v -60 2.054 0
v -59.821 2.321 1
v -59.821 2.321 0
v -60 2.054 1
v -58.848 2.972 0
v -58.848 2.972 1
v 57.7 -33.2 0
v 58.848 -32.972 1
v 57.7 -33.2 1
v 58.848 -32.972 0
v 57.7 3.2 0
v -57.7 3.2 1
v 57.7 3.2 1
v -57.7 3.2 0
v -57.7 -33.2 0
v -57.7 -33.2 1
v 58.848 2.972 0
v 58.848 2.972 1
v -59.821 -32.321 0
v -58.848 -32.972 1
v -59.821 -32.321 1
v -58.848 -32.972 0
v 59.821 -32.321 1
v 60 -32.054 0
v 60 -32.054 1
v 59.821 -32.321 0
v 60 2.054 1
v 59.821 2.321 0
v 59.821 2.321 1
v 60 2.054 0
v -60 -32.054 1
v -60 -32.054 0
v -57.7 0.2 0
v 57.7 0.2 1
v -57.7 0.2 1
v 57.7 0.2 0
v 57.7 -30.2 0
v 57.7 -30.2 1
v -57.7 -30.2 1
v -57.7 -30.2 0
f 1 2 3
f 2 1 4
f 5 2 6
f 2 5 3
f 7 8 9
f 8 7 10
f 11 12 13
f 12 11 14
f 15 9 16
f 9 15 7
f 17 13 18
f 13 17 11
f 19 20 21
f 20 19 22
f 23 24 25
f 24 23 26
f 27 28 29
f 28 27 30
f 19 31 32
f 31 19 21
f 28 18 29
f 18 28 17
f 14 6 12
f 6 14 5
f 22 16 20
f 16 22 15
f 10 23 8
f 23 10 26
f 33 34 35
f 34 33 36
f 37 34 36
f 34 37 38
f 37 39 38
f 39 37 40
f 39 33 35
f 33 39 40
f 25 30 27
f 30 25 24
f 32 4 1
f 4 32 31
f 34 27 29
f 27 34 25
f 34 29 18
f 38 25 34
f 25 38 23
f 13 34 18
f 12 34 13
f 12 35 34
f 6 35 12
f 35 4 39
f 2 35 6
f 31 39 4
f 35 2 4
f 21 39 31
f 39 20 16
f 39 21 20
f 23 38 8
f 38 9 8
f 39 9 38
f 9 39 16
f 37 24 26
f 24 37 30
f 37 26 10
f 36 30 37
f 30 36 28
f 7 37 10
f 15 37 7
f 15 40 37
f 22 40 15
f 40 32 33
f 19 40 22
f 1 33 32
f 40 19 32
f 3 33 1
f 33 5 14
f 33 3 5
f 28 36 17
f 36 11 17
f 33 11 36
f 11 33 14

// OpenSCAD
// file: params.scad
depth=40;

xt60_loc = [ [-47,-depth, 15], [-27,-depth, 15], [-7,-depth, 15] ];
plug_loc = [5,-depth, 1.5];

margin = 0.2;

plug_margin=0.2;

xt60_margin = 0.25;
xt60m_margin = 1;

xt60_thickness = 1.5;
plug_thickness = 2;

case_w_inner = 115+2*margin;
case_h_inner = 30+2*margin;
case_thickness = 3;
case_front_thickness = 1.5;
case_w = case_w_inner + 2*case_thickness;
case_d = depth + 40;
case_h = case_h_inner + 2*case_thickness;

case_dim = [case_w, case_d, case_h];
case_dim_inner = [case_w_inner, case_d, case_h_inner];
case_dim_inside = [(case_w_inner+case_w)/2, case_d, (case_h_inner+case_h)/2];

bump_corner=(case_thickness+margin)*2.5;

front = [0,-1, 0];
bottom_front = [0,-1,-1];

grid_rows = 3;
grid_cols = 11;
grid_pitch = 10;
grid_thickness = .8;
grid_depth=12;
grid_xoff =-2;

screw_thread=3;
screw_hole_r=(screw_thread*.9)/2;
screw_hole_border=2;

mw_lrs_gap_d = 18.5;
// file: xt.scad
e=.001;
$fn=16;

xt60_w=15.7;
xt60_h=8;
xt60f_d = 15.7;
xt60f_base_d = 8;
xt60_combined_d=24.1;
xt60_pitch=7;
xt60_chamfer=2.5;
xt60f_pin_d=5.7;
xt60m_pin_d=4.7;
xt60_pin_w=4.5;
xt60_hole_w=4.5;
xt60_corner=.5;

module xt_pins(width, height, pitch)
{
	for (p=[-pitch/2, pitch/2])
	translate([p,0,0])
	cylinder(h=height, r=width/2);
}

module xt_base(w, h, d, chamfer, corner, margin=0, e=0)
{
	w = w-2*corner;
	h = h-2*corner;
	r = corner+margin;
	translate([0,0,-e])
    linear_extrude(d+2*e)
	hull()
    for (p=[ [w/2,-h/2],
	         [-w/2+chamfer, -h/2],
	         [-w/2, -h/2+chamfer],
	         [-w/2, h/2-chamfer],
	         [-w/2+chamfer, h/2],
	         [w/2, h/2]
	])
	translate(p)
	circle(r);
}

module xt60_combined_shell_cutout(margin=0,f_margin=-1,m_margin=-1, e=0)
{
	b=1; 
	xt_base(xt60_w, xt60_h, xt60_combined_d, xt60_chamfer, xt60_corner, margin, e);
	if (f_margin > margin)
	hull()
	{
		xt_base(xt60_w, xt60_h, xt60f_base_d, xt60_chamfer, xt60_corner, f_margin, e);
		translate([0,0,xt60f_base_d])
		xt_base(xt60_w, xt60_h, f_margin-margin, xt60_chamfer, xt60_corner, margin, e);
	}
	if (m_margin > margin)
	hull()
	{
		translate([0,0,xt60f_base_d-(m_margin-margin)])
		xt_base(xt60_w, xt60_h, m_margin-margin, xt60_chamfer, xt60_corner, margin, e);
		translate([0,0,xt60f_base_d])
		xt_base(xt60_w, xt60_h, xt60_combined_d-xt60f_base_d, xt60_chamfer, xt60_corner, m_margin, e);
	}
}


module xt60_combined_cutout(margin=0,f_margin=-1,m_margin=-1, e=0)
{
	b=1; 
	xt60_combined_shell_cutout(margin,f_margin,m_margin, e);

	translate([0, 0, -xt60f_pin_d-margin])
	xt_pins(xt60_pin_w+margin*2, xt60f_pin_d+b+margin, xt60_pitch);

	translate([0, 0, xt60_combined_d-b])
	xt_pins(xt60_pin_w+margin*2, xt60m_pin_d+b+margin, xt60_pitch);
}

module xt60f_cutout(margin=0,f_margin=-1,m_margin=-1,e=0)
{
	translate([0,0,-xt60f_d])
	xt60_combined_cutout(margin,f_margin,m_margin,e);
}

module xt60f_shell_cutout(margin=0,f_margin=-1,m_margin=-1,e=0)
{
	translate([0,0,-xt60f_d])
	xt60_combined_shell_cutout(margin,f_margin,m_margin,e);
}

module xt60f()
{
	b=1;
	translate([0,0,-xt60f_d])
	{
		xt_base(xt60_w, xt60_h, xt60f_base_d, xt60_chamfer, xt60_corner, 0, e);

		translate([0,0,b])
		difference()
		{
			xt_base(xt60_w-2*xt60_corner, xt60_h-2*xt60_corner, xt60f_d-b, xt60_chamfer, xt60_corner, 0, e);
			xt_pins(xt60_hole_w, xt60f_d, xt60_pitch);

		}

		difference()
		{
			translate([0, 0, -xt60f_pin_d])
			xt_pins(xt60_pin_w, xt60f_pin_d+b, xt60_pitch);

			translate([0, 0, -xt60f_pin_d-b])
			xt_pins(xt60_pin_w*.8, xt60f_pin_d+b, xt60_pitch);
		}
	}
}

xt60f();
%xt60f_cutout(margin=.4,m_margin=1,e=e);
// file: power_shield.scad
use <utils.scad>
use <grid.scad>

use <mw_lrs.scad>
use <powerplug.scad>
use <xt.scad>

$fn=16;
e=.001;


margin=.15;
shield_thickness=1.;
shield_bottom=.6;

border_w=51;
border_h=31.2;
border_d=3.5;

w=47;
h=26.8;
d=22;
chamf=4;

corner=1;

module plug_keepout(margin=0, depth=39, e=0)
{
	$fn=16;

	d = .1+e;
	border_w = border_w-2*corner;
	border_h = border_h-2*corner;
	w = w-2*corner;
	h = h-2*corner;
	r = corner+margin;
	off = 16.5;

	color([.3,.3,.3])
	translate([corner,depth-.1,corner])
	rotate([90,0,0])
	{
		translate([(border_w-w)/2,0,-d])
		linear_extrude(d+e)
		hull()
		for (p=[ [off, 0],
		         [off, h],
		         [w-chamf, h],
		         [w, h-chamf],
		         [w, chamf],
		         [w- chamf, 0],
		])
		translate(p)
		circle(r);
	}
}

module plug_hull(margin, d, e=0)
{
	hull()
	{
		difference()
		{
		plug(margin=margin, extra_depth=5+shield_bottom);
		translate([-10,-10,-10])
		cube([100, 30, 100]);
		}
		plug_keepout(margin=margin, depth=d, e=0);
	}
	plug_keepout(margin=margin, depth=d, e=e);
	
}

inner_w=.8;

module power_shield()
{
color("red")
	union()
	{
	difference()
	{
		union()
		{
			plug_hull(margin=margin+shield_thickness, d=39);
		}
		union()
		{
		plug_hull(margin=margin, d=38, e=2);
		}
	}

	intersection()
	{
		plug_hull(margin=margin+shield_thickness/2, d=38.5, e=2);
		difference()
		{
			union()
			{
				translate([(border_w-w)/2+8.5-inner_w/2, 22, h/2-4-inner_w/2])
				cube([inner_w, 20, 20]);

				translate([(border_w-w)/2+8.5, 22, h/2-4-inner_w/2])
				cube([9., 17, inner_w]);

				translate([(border_w-w)/2+17.5-inner_w/2, 22, h/2-4-inner_w/2])
				cube([inner_w, 17, 10]);

				translate([(border_w-w)/2+15-inner_w/2, 38.4, h/2-4-inner_w/2])
				cube([2.5, shield_bottom, 10]);

				for (y=[0,h])
				for (x=[0,w-2])
				translate([(border_w-w)/2+x-5/sqrt(2)-inner_w/2, 22, y])
				rotate([0,45,0])
				cube([5,1,5]);

			}
			translate([(border_w-w)/2+6.5-inner_w/2, 21, h/2-6/2-inner_w/2])
			cube([5, 2, 5.5]);
		}
	}
}
}

rotate([-90,0,0])
translate([0,-39,0])
{
	power_shield();

	//preview()
	//plug();
}
// file: powerplug.scad
e=0.001;

border_w=51;
border_h=31.2;
border_d=3.5;

w=47;
h=26.8;
d=22;
chamf=4;

corner=1;

module plug(margin=0, extra_depth=0)
{
	$fn=16;

	d = d+extra_depth;
	border_w = border_w-2*corner;
	border_h = border_h-2*corner;
	w = w-2*corner;
	h = h-2*corner;
	r = corner+margin;

	color([.3,.3,.3])
	translate([corner,0,corner])
	rotate([90,0,0])
	{
		translate([0,(h-border_h)/2,0])
		linear_extrude(border_d+margin)
		hull()
		for(p=[ [0, 0],
		        [0, border_h],
		        [border_w, border_h],
		        [border_w, 0]
		])
		translate(p)
		circle(r);

		translate([(border_w-w)/2,0,-d])
		linear_extrude(d+e)
		hull()
		for (p=[ [0, 0],
		         [0, h],
		         [w-chamf, h],
		         [w, h-chamf],
		         [w, chamf],
		         [w- chamf, 0],
		])
		translate(p)
		circle(r);
	}
}

module plug_latch(margin=0)
{
	rotate([90,0,0])
	rotate([0,90,0])
	linear_extrude(9)
	{
		polygon([ [0, -1], [0, 1+margin], [9, margin]]);
	}
}

module plug_latches(margin=0)
{
	for (x=[9.5,32])
	for (y_flip=[-1, 1])
	translate([(border_w-w)/2+x,1.6, h/2])
	scale([1,1,y_flip])
	translate([0,0,h/2])
	plug_latch(margin);
}


module plug_latches_keepout(margin=0, extra_depth=0)
{
	for (x=[9.5,32])
	for (y_flip=[-1, 1])
	translate([(border_w-w)/2+x,1.6, h/2])
	scale([1,1,y_flip])
	translate([0,0,h/2])
	cube([9,d+extra_depth-1.6+e,1+margin]);
}

plug();

plug_latches();

#plug_latches_keepout();

%plug(margin=.3);
// file: mw_lrs.scad
e=.001;
$fn=16;

mw_lrs_w=115;
mw_lrs_h=30;
mw_lrs_d=215;


mw_lrs_holes_pitch_d  = 150;
mw_lrs_holes_pitch_w  = 50;
mw_lrs_holes_height_h = 12.5;

mw_lrs_gap_h = 23;
mw_lrs_gap_d = 18.5;

mw_lrs_case_thickness = 1.6;

m4_thread = 4;

mw_lrs_screw_terminal_x=8.5;
mw_lrs_screw_terminal_w=88;
mw_lrs_screw_terminal_d=15;
mw_lrs_screw_terminal_h=15;
mw_lrs_screw_terminal_pitch = 9.5;
mw_lrs_screw_terminal_gap_w = 8;
mw_lrs_screw_terminal_gap_d = 14;
mw_lrs_screw_terminal_gap_z = 7;
mw_lrs_screw_terminal_gap_h = 6;

module mw_lrs_side_holes()
{
	translate( [0, 0, mw_lrs_holes_height_h] )
	for( r = [ 0, 180 ] )
	rotate( [0, r, 0] )
	for( y = [ (mw_lrs_d-mw_lrs_holes_pitch_d)/2, (mw_lrs_d+mw_lrs_holes_pitch_d)/2 ] )
	translate( [-mw_lrs_w/2, y, 0] )
	rotate( [0, 90, 0] )
	children();
}

module mw_lrs_bottom_holes()
{
	for( x = [ -mw_lrs_holes_pitch_w/2, mw_lrs_holes_pitch_w/2 ] )
	for( y = [ (mw_lrs_d-mw_lrs_holes_pitch_d)/2, (mw_lrs_d+mw_lrs_holes_pitch_d)/2 ] )
	translate( [x, y, 0] )
	children();
}

module mw_lrs_holes()
{
	mw_lrs_side_holes() children();
	mw_lrs_bottom_holes() children();
}

module mw_lrs_screw_terminal()
{
	colors = [
		"red", "red", "red",
		"black", "black", "black",
		"green", "blue", "brown",
	];
	b=1;
	translate([mw_lrs_screw_terminal_x, mw_lrs_case_thickness, mw_lrs_h-mw_lrs_gap_h-e])
	{
		difference()
		{
			translate([-mw_lrs_screw_terminal_w/2, 0, 0])
			cube([mw_lrs_screw_terminal_w, mw_lrs_screw_terminal_d, mw_lrs_screw_terminal_h+e]);
			for (i=[0:8])
			translate([(i-4)*9.5-mw_lrs_screw_terminal_gap_w/2, -b, mw_lrs_screw_terminal_gap_z])
			cube([mw_lrs_screw_terminal_gap_w, mw_lrs_screw_terminal_gap_d+b, mw_lrs_screw_terminal_gap_h]);
		}

		for (i=[0:8])
		translate([(i-4)*9.5-mw_lrs_screw_terminal_gap_w/2, -0, mw_lrs_screw_terminal_h])
		color(colors[i])
		cube([mw_lrs_screw_terminal_gap_w,mw_lrs_screw_terminal_gap_d,.1]);

	}
}

module mw_lrs_vents()
{
	b=1;
	hole=4;
	for (y = [36, 44, 52])
	for (i = [-1, 1])
	hull()
	{
		translate([i*(19/2+hole/2), y, mw_lrs_h-mw_lrs_case_thickness-b])
			cylinder(mw_lrs_case_thickness+2*b, r=hole/2);

		translate([i*(19/2+hole/2+33), y, mw_lrs_h-mw_lrs_case_thickness-b])
			cylinder(mw_lrs_case_thickness+2*b, r=hole/2);
	}

	translate([-mw_lrs_w/2+36.7, mw_lrs_d-47.45,mw_lrs_h-mw_lrs_case_thickness-b])
		cylinder(mw_lrs_case_thickness+2*b, r=50/2);
}

module mw_lrs_vents_keepout(h, margin=0)
{
	b=1;
	hole=4;
	hull()
	for (y = [36, 44, 52])
	for (i = [-1, 1])
	{
		translate([i*(19/2+hole/2), y, mw_lrs_h-b])
			cylinder(h+b, r=hole/2+margin);

		translate([i*(19/2+hole/2+33), y, mw_lrs_h-b])
			cylinder(h+b, r=hole/2+margin);
	}

	translate([-mw_lrs_w/2+36.7, mw_lrs_d-47.45,mw_lrs_h-b])
		cylinder(h+b, r=50/2);
}

module mw_lrs()
{
	b=1; 

	union()
	{
		color([.75,.75,.75])
		difference()
		{

			translate([-mw_lrs_w/2,0,0])
			cube([mw_lrs_w, mw_lrs_d, mw_lrs_h]);

			union()
			{
				translate([-mw_lrs_w/2+mw_lrs_case_thickness, -b, mw_lrs_h-mw_lrs_gap_h] )
				cube( [ mw_lrs_w-2*mw_lrs_case_thickness, b+mw_lrs_gap_d, mw_lrs_gap_h+b] );

				translate([-mw_lrs_w/2+mw_lrs_case_thickness, mw_lrs_gap_d-e, mw_lrs_h-mw_lrs_gap_h] )
				cube( [ mw_lrs_w-2*mw_lrs_case_thickness, mw_lrs_d-mw_lrs_gap_d+e-mw_lrs_case_thickness, mw_lrs_gap_h-mw_lrs_case_thickness] );

				mw_lrs_vents();

				mw_lrs_holes()
				{
					translate([0,0,-e])
					cylinder(h=5+e, r=m4_thread/2);
				}
			}
		}
		color([.1, .3, .1])
		translate([-mw_lrs_w/2+mw_lrs_case_thickness, 0, mw_lrs_h-mw_lrs_gap_h-e])
		cube([mw_lrs_w-2*mw_lrs_case_thickness, mw_lrs_d-mw_lrs_case_thickness, e+.1]);
		mw_lrs_screw_terminal();
	}
}

module mw_lrs_keepout(margin=0, e=0)
{
	b=1; 

	w=mw_lrs_w+margin*2;
	d=mw_lrs_d+margin*2;
	h=mw_lrs_h+margin*2;

	translate([-w/2,-margin,-margin])
	cube([w, d, h]);
}

mw_lrs();
%mw_lrs_keepout(margin=.4);

module m4_hole(h, margin=0)
{
	translate([0,0,-h])
	cylinder(h=h+e, r=(m4_thread+margin)/2);
}

%mw_lrs_holes()
m4_hole(10);
// file: grid.scad
module bars(width, height, n, pitch, bar_width)
{
	for (i=[0:n-1])
		translate([0, (i-(n-1)/2)*pitch-bar_width/2, 0])
			cube([width, bar_width, height]);
}

module grid(width, depth, height, n_rows, n_cols, pitch=10, x_pitch=-1, y_pitch=-1, bar_width=1, x_bar_width=-1, y_bar_width=-1)
{
	x_pitch = x_pitch > 0 ? x_pitch : pitch;
	y_pitch = y_pitch > 0 ? y_pitch : pitch;
	x_bar_width = x_bar_width > 0 ? x_bar_width : bar_width;
	y_bar_width = y_bar_width > 0 ? y_bar_width : bar_width;

	translate( [0, depth/2, 0] )
		bars( width, height, n_rows, y_pitch, y_bar_width );
	translate( [width/2, 0, 0] )
		rotate([0,0,90])
			bars( depth, height, n_cols, x_pitch, x_bar_width) ;
}

grid(100, 50, 1, 4, 8);
// file: utils.scad
module xz_toward_y()
{
	scale([1, 1, -1])
	rotate([-90,0,0])
	children();
}

module anchor(dim, anchor=[0,0,0])
{
	translate([-(1+anchor.x)*dim.x/2, -(1+anchor.y)*dim.y/2, -(1+anchor.z)*dim.z/2])
	children();
}

module block(dim, anchor=[0,0,0])
{
	anchor(dim, anchor)
	cube(dim);
}

module rounded_block_z(dim, anchor=[0,0,0], r=0)
{
	anchor(dim, anchor)
	linear_extrude(dim.z)
	hull()
	for (p=[ [r,r], [dim.x-r, r], [dim.x-r, dim.y-r], [r, dim.y-r] ] )
	translate(p)
	circle(r);
}

module rounded_block_y(dim, anchor=[0,0,0], r=0)
{
	anchor(dim, anchor)
	xz_toward_y()
	linear_extrude(dim.y)
	hull()
	for (p=[ [r,r], [dim.x-r, r], [dim.x-r, dim.z-r], [r, dim.z-r] ] )
	translate(p)
	circle(r);
}

module chamfer_block_y(dim, anchor=[0,0,0], r=0)
{
	anchor(dim, anchor)
	hull()
	{
		translate([r,0,0])
		cube([dim.x-r*2, dim.y, dim.z]);

		translate([0,0,r])
		cube([dim.x, dim.y, dim.z-r*2]);
	}
}

module chamfer_block_z(dim, anchor=[0,0,0], r=0)
{
	anchor(dim, anchor)
	hull()
	{
		translate([r,0,0])
		cube([dim.x-r*2, dim.y, dim.z]);

		translate([0,r,0])
		cube([dim.x, dim.y-r*2, dim.z]);
	}
}

module chamfer_block(dim, anchor=[0,0,0], r=0)
{
	anchor(dim, anchor)
	hull()
	{
		translate([r,r,0])
		cube([dim.x-r*2, dim.y-r*2, dim.z]);

		translate([r,0,r])
		cube([dim.x-r*2, dim.y, dim.z-r*2]);

		translate([0,r,r])
		cube([dim.x, dim.y-r*2, dim.z-r*2]);
	}
}

module at_grid(c,r,pitch,anchor=[0,0,0])
{
	dim=[(c-1)*pitch,(r-1)*pitch,1];
	a=[anchor[0],anchor[1],-1];
	anchor(dim,a)
	for(x=[0:c-1])
	for(y=[0:r-1])
	translate([x*pitch,y*pitch,0])
	children();
}

module ngon_outer(n,h,r)
{
	cylinder(h,r=r, $fn=n);
}

module ngon_inner(n,h,r)
{
	a=360/n/2;
	r_cyl = r/cos(a);
	rotate([0,0,a])
	cylinder(h,r=r_cyl, $fn=n);
}


module ngon_cone_outer(n,h,r1,r2)
{
	cylinder(h,r1=r1,r2=r2, $fn=n);
}

module ngon_cone_inner(n,h,r1,r2)
{
	a=360/n/2;
	r1_cyl = r1/cos(a);
	r2_cyl = r2/cos(a);
	rotate([0,0,a])
	cylinder(h,r1=r1_cyl,r2=r2_cyl, $fn=n);
}

module preview()
{
	if ($preview)
	children();
}
// file: cover.scad
use <utils.scad>
use <grid.scad>

use <mw_lrs.scad>
use <powerplug.scad>
use <power_shield.scad>
use <xt.scad>

include <params.scad>

$fn=16;
e=.001;

module cutout()
{
	mw_lrs_keepout(margin=margin);

	for ( p = xt60_loc )
	translate(p)
	translate([0,0,0])
	rotate([90,90,0])
	xt60f_cutout(margin=xt60_margin,m_margin=xt60m_margin,e=e);

	translate(plug_loc)
	{
	plug(margin=plug_margin, , extra_depth=-2);
	plug_latches_keepout(margin=plug_margin);
	}

	mw_lrs_holes()
	m4_hole(10, margin=.25);

	mw_lrs_vents_keepout(h=10, margin=1);
}

module shell()
{
	difference()
	{
		translate([0, -depth, -case_thickness-margin])
		rounded_block_y(case_dim, bottom_front, r=case_thickness);

		translate([0, -depth+case_front_thickness, -margin])
		chamfer_block([case_w_inner, case_d, case_h_inner], bottom_front, r=case_thickness);
	}
}

module round_corner(w)
{
	difference()
	{
		rotate([90,0,0])
		cylinder(w, r1=w, r2=0);
		union()
		{
			translate([-w-e,-w,-w])
			cube([w,w*2,w*2]);

			translate([-w,-w,-w-e])
			cube([w*2,w*2,w]);
		}
	}
}


module bump_corner(w)
{
	round_corner(w, $fn=4);
}

module front_grid()
{
	translate([0, -depth+e,-case_thickness/2])
	xz_toward_y()
	anchor(case_dim_inside, bottom_front)
	grid(case_dim_inside.x, case_dim_inside.z, case_thickness+grid_depth-e, grid_rows, grid_cols, pitch=grid_pitch, bar_width=grid_thickness, x_off=grid_xoff, y_off=0);
}

module at_panel_screws()
{
	for (x=[ -12, -42 ])
	for (z=[ 5, 25 ])
	translate([x,-depth, z])
	children();
}


module cover()
{
	difference()
	{
		union()
		{
			shell();
	
			intersection()
			{
				union()
				{
					front_grid();
					translate(plug_loc)
					plug(margin=plug_margin+plug_thickness, extra_depth=-2);
	
					for ( p = xt60_loc )
					translate(p)
					rotate([90,90,0])
					xt60f_shell_cutout(margin=  xt60_margin+xt60_thickness,
					                 m_margin=xt60m_margin+xt60_thickness);

					at_panel_screws()
					translate([0,-e, 0])
					xz_toward_y()
					linear_extrude(15.7+e)
					circle(screw_hole_r+screw_hole_border);

				}
				translate([0, -depth+e, case_h_inner/2])
				block(case_dim_inside, front);
			}

			translate([0,-margin,case_h_inner/2-margin])
			for (x=[1, -1])
			for (z=[1, -1])
			scale([x, 1, z])
			translate([-case_w_inner/2, 0,-case_h_inner/2])
			bump_corner(bump_corner);
		}
		union()
		{
			cutout();

			at_panel_screws()
			translate([0,case_thickness+e, 0])
			xz_toward_y()
			linear_extrude(15.7)
			circle(screw_hole_r);
		}
	}
}


module print_orientation()
{
	rotate([90,0,0])
	translate([0,depth,0])
	children();
}


print_orientation()
preview()
{
	mw_lrs();

	for ( p = xt60_loc )
	translate(p)
	rotate([90,90,0])
	xt60f();

	translate(plug_loc)
	plug();

	translate(plug_loc)
	power_shield();
}

print_orientation()
#cover();
// main file
use <cover.scad>

print_orientation()
translate([0,-40,0])
color("red")
intersection()
{
	translate([-60,0,-10])
	cube([120, 1, 50]);
	cover();
}
